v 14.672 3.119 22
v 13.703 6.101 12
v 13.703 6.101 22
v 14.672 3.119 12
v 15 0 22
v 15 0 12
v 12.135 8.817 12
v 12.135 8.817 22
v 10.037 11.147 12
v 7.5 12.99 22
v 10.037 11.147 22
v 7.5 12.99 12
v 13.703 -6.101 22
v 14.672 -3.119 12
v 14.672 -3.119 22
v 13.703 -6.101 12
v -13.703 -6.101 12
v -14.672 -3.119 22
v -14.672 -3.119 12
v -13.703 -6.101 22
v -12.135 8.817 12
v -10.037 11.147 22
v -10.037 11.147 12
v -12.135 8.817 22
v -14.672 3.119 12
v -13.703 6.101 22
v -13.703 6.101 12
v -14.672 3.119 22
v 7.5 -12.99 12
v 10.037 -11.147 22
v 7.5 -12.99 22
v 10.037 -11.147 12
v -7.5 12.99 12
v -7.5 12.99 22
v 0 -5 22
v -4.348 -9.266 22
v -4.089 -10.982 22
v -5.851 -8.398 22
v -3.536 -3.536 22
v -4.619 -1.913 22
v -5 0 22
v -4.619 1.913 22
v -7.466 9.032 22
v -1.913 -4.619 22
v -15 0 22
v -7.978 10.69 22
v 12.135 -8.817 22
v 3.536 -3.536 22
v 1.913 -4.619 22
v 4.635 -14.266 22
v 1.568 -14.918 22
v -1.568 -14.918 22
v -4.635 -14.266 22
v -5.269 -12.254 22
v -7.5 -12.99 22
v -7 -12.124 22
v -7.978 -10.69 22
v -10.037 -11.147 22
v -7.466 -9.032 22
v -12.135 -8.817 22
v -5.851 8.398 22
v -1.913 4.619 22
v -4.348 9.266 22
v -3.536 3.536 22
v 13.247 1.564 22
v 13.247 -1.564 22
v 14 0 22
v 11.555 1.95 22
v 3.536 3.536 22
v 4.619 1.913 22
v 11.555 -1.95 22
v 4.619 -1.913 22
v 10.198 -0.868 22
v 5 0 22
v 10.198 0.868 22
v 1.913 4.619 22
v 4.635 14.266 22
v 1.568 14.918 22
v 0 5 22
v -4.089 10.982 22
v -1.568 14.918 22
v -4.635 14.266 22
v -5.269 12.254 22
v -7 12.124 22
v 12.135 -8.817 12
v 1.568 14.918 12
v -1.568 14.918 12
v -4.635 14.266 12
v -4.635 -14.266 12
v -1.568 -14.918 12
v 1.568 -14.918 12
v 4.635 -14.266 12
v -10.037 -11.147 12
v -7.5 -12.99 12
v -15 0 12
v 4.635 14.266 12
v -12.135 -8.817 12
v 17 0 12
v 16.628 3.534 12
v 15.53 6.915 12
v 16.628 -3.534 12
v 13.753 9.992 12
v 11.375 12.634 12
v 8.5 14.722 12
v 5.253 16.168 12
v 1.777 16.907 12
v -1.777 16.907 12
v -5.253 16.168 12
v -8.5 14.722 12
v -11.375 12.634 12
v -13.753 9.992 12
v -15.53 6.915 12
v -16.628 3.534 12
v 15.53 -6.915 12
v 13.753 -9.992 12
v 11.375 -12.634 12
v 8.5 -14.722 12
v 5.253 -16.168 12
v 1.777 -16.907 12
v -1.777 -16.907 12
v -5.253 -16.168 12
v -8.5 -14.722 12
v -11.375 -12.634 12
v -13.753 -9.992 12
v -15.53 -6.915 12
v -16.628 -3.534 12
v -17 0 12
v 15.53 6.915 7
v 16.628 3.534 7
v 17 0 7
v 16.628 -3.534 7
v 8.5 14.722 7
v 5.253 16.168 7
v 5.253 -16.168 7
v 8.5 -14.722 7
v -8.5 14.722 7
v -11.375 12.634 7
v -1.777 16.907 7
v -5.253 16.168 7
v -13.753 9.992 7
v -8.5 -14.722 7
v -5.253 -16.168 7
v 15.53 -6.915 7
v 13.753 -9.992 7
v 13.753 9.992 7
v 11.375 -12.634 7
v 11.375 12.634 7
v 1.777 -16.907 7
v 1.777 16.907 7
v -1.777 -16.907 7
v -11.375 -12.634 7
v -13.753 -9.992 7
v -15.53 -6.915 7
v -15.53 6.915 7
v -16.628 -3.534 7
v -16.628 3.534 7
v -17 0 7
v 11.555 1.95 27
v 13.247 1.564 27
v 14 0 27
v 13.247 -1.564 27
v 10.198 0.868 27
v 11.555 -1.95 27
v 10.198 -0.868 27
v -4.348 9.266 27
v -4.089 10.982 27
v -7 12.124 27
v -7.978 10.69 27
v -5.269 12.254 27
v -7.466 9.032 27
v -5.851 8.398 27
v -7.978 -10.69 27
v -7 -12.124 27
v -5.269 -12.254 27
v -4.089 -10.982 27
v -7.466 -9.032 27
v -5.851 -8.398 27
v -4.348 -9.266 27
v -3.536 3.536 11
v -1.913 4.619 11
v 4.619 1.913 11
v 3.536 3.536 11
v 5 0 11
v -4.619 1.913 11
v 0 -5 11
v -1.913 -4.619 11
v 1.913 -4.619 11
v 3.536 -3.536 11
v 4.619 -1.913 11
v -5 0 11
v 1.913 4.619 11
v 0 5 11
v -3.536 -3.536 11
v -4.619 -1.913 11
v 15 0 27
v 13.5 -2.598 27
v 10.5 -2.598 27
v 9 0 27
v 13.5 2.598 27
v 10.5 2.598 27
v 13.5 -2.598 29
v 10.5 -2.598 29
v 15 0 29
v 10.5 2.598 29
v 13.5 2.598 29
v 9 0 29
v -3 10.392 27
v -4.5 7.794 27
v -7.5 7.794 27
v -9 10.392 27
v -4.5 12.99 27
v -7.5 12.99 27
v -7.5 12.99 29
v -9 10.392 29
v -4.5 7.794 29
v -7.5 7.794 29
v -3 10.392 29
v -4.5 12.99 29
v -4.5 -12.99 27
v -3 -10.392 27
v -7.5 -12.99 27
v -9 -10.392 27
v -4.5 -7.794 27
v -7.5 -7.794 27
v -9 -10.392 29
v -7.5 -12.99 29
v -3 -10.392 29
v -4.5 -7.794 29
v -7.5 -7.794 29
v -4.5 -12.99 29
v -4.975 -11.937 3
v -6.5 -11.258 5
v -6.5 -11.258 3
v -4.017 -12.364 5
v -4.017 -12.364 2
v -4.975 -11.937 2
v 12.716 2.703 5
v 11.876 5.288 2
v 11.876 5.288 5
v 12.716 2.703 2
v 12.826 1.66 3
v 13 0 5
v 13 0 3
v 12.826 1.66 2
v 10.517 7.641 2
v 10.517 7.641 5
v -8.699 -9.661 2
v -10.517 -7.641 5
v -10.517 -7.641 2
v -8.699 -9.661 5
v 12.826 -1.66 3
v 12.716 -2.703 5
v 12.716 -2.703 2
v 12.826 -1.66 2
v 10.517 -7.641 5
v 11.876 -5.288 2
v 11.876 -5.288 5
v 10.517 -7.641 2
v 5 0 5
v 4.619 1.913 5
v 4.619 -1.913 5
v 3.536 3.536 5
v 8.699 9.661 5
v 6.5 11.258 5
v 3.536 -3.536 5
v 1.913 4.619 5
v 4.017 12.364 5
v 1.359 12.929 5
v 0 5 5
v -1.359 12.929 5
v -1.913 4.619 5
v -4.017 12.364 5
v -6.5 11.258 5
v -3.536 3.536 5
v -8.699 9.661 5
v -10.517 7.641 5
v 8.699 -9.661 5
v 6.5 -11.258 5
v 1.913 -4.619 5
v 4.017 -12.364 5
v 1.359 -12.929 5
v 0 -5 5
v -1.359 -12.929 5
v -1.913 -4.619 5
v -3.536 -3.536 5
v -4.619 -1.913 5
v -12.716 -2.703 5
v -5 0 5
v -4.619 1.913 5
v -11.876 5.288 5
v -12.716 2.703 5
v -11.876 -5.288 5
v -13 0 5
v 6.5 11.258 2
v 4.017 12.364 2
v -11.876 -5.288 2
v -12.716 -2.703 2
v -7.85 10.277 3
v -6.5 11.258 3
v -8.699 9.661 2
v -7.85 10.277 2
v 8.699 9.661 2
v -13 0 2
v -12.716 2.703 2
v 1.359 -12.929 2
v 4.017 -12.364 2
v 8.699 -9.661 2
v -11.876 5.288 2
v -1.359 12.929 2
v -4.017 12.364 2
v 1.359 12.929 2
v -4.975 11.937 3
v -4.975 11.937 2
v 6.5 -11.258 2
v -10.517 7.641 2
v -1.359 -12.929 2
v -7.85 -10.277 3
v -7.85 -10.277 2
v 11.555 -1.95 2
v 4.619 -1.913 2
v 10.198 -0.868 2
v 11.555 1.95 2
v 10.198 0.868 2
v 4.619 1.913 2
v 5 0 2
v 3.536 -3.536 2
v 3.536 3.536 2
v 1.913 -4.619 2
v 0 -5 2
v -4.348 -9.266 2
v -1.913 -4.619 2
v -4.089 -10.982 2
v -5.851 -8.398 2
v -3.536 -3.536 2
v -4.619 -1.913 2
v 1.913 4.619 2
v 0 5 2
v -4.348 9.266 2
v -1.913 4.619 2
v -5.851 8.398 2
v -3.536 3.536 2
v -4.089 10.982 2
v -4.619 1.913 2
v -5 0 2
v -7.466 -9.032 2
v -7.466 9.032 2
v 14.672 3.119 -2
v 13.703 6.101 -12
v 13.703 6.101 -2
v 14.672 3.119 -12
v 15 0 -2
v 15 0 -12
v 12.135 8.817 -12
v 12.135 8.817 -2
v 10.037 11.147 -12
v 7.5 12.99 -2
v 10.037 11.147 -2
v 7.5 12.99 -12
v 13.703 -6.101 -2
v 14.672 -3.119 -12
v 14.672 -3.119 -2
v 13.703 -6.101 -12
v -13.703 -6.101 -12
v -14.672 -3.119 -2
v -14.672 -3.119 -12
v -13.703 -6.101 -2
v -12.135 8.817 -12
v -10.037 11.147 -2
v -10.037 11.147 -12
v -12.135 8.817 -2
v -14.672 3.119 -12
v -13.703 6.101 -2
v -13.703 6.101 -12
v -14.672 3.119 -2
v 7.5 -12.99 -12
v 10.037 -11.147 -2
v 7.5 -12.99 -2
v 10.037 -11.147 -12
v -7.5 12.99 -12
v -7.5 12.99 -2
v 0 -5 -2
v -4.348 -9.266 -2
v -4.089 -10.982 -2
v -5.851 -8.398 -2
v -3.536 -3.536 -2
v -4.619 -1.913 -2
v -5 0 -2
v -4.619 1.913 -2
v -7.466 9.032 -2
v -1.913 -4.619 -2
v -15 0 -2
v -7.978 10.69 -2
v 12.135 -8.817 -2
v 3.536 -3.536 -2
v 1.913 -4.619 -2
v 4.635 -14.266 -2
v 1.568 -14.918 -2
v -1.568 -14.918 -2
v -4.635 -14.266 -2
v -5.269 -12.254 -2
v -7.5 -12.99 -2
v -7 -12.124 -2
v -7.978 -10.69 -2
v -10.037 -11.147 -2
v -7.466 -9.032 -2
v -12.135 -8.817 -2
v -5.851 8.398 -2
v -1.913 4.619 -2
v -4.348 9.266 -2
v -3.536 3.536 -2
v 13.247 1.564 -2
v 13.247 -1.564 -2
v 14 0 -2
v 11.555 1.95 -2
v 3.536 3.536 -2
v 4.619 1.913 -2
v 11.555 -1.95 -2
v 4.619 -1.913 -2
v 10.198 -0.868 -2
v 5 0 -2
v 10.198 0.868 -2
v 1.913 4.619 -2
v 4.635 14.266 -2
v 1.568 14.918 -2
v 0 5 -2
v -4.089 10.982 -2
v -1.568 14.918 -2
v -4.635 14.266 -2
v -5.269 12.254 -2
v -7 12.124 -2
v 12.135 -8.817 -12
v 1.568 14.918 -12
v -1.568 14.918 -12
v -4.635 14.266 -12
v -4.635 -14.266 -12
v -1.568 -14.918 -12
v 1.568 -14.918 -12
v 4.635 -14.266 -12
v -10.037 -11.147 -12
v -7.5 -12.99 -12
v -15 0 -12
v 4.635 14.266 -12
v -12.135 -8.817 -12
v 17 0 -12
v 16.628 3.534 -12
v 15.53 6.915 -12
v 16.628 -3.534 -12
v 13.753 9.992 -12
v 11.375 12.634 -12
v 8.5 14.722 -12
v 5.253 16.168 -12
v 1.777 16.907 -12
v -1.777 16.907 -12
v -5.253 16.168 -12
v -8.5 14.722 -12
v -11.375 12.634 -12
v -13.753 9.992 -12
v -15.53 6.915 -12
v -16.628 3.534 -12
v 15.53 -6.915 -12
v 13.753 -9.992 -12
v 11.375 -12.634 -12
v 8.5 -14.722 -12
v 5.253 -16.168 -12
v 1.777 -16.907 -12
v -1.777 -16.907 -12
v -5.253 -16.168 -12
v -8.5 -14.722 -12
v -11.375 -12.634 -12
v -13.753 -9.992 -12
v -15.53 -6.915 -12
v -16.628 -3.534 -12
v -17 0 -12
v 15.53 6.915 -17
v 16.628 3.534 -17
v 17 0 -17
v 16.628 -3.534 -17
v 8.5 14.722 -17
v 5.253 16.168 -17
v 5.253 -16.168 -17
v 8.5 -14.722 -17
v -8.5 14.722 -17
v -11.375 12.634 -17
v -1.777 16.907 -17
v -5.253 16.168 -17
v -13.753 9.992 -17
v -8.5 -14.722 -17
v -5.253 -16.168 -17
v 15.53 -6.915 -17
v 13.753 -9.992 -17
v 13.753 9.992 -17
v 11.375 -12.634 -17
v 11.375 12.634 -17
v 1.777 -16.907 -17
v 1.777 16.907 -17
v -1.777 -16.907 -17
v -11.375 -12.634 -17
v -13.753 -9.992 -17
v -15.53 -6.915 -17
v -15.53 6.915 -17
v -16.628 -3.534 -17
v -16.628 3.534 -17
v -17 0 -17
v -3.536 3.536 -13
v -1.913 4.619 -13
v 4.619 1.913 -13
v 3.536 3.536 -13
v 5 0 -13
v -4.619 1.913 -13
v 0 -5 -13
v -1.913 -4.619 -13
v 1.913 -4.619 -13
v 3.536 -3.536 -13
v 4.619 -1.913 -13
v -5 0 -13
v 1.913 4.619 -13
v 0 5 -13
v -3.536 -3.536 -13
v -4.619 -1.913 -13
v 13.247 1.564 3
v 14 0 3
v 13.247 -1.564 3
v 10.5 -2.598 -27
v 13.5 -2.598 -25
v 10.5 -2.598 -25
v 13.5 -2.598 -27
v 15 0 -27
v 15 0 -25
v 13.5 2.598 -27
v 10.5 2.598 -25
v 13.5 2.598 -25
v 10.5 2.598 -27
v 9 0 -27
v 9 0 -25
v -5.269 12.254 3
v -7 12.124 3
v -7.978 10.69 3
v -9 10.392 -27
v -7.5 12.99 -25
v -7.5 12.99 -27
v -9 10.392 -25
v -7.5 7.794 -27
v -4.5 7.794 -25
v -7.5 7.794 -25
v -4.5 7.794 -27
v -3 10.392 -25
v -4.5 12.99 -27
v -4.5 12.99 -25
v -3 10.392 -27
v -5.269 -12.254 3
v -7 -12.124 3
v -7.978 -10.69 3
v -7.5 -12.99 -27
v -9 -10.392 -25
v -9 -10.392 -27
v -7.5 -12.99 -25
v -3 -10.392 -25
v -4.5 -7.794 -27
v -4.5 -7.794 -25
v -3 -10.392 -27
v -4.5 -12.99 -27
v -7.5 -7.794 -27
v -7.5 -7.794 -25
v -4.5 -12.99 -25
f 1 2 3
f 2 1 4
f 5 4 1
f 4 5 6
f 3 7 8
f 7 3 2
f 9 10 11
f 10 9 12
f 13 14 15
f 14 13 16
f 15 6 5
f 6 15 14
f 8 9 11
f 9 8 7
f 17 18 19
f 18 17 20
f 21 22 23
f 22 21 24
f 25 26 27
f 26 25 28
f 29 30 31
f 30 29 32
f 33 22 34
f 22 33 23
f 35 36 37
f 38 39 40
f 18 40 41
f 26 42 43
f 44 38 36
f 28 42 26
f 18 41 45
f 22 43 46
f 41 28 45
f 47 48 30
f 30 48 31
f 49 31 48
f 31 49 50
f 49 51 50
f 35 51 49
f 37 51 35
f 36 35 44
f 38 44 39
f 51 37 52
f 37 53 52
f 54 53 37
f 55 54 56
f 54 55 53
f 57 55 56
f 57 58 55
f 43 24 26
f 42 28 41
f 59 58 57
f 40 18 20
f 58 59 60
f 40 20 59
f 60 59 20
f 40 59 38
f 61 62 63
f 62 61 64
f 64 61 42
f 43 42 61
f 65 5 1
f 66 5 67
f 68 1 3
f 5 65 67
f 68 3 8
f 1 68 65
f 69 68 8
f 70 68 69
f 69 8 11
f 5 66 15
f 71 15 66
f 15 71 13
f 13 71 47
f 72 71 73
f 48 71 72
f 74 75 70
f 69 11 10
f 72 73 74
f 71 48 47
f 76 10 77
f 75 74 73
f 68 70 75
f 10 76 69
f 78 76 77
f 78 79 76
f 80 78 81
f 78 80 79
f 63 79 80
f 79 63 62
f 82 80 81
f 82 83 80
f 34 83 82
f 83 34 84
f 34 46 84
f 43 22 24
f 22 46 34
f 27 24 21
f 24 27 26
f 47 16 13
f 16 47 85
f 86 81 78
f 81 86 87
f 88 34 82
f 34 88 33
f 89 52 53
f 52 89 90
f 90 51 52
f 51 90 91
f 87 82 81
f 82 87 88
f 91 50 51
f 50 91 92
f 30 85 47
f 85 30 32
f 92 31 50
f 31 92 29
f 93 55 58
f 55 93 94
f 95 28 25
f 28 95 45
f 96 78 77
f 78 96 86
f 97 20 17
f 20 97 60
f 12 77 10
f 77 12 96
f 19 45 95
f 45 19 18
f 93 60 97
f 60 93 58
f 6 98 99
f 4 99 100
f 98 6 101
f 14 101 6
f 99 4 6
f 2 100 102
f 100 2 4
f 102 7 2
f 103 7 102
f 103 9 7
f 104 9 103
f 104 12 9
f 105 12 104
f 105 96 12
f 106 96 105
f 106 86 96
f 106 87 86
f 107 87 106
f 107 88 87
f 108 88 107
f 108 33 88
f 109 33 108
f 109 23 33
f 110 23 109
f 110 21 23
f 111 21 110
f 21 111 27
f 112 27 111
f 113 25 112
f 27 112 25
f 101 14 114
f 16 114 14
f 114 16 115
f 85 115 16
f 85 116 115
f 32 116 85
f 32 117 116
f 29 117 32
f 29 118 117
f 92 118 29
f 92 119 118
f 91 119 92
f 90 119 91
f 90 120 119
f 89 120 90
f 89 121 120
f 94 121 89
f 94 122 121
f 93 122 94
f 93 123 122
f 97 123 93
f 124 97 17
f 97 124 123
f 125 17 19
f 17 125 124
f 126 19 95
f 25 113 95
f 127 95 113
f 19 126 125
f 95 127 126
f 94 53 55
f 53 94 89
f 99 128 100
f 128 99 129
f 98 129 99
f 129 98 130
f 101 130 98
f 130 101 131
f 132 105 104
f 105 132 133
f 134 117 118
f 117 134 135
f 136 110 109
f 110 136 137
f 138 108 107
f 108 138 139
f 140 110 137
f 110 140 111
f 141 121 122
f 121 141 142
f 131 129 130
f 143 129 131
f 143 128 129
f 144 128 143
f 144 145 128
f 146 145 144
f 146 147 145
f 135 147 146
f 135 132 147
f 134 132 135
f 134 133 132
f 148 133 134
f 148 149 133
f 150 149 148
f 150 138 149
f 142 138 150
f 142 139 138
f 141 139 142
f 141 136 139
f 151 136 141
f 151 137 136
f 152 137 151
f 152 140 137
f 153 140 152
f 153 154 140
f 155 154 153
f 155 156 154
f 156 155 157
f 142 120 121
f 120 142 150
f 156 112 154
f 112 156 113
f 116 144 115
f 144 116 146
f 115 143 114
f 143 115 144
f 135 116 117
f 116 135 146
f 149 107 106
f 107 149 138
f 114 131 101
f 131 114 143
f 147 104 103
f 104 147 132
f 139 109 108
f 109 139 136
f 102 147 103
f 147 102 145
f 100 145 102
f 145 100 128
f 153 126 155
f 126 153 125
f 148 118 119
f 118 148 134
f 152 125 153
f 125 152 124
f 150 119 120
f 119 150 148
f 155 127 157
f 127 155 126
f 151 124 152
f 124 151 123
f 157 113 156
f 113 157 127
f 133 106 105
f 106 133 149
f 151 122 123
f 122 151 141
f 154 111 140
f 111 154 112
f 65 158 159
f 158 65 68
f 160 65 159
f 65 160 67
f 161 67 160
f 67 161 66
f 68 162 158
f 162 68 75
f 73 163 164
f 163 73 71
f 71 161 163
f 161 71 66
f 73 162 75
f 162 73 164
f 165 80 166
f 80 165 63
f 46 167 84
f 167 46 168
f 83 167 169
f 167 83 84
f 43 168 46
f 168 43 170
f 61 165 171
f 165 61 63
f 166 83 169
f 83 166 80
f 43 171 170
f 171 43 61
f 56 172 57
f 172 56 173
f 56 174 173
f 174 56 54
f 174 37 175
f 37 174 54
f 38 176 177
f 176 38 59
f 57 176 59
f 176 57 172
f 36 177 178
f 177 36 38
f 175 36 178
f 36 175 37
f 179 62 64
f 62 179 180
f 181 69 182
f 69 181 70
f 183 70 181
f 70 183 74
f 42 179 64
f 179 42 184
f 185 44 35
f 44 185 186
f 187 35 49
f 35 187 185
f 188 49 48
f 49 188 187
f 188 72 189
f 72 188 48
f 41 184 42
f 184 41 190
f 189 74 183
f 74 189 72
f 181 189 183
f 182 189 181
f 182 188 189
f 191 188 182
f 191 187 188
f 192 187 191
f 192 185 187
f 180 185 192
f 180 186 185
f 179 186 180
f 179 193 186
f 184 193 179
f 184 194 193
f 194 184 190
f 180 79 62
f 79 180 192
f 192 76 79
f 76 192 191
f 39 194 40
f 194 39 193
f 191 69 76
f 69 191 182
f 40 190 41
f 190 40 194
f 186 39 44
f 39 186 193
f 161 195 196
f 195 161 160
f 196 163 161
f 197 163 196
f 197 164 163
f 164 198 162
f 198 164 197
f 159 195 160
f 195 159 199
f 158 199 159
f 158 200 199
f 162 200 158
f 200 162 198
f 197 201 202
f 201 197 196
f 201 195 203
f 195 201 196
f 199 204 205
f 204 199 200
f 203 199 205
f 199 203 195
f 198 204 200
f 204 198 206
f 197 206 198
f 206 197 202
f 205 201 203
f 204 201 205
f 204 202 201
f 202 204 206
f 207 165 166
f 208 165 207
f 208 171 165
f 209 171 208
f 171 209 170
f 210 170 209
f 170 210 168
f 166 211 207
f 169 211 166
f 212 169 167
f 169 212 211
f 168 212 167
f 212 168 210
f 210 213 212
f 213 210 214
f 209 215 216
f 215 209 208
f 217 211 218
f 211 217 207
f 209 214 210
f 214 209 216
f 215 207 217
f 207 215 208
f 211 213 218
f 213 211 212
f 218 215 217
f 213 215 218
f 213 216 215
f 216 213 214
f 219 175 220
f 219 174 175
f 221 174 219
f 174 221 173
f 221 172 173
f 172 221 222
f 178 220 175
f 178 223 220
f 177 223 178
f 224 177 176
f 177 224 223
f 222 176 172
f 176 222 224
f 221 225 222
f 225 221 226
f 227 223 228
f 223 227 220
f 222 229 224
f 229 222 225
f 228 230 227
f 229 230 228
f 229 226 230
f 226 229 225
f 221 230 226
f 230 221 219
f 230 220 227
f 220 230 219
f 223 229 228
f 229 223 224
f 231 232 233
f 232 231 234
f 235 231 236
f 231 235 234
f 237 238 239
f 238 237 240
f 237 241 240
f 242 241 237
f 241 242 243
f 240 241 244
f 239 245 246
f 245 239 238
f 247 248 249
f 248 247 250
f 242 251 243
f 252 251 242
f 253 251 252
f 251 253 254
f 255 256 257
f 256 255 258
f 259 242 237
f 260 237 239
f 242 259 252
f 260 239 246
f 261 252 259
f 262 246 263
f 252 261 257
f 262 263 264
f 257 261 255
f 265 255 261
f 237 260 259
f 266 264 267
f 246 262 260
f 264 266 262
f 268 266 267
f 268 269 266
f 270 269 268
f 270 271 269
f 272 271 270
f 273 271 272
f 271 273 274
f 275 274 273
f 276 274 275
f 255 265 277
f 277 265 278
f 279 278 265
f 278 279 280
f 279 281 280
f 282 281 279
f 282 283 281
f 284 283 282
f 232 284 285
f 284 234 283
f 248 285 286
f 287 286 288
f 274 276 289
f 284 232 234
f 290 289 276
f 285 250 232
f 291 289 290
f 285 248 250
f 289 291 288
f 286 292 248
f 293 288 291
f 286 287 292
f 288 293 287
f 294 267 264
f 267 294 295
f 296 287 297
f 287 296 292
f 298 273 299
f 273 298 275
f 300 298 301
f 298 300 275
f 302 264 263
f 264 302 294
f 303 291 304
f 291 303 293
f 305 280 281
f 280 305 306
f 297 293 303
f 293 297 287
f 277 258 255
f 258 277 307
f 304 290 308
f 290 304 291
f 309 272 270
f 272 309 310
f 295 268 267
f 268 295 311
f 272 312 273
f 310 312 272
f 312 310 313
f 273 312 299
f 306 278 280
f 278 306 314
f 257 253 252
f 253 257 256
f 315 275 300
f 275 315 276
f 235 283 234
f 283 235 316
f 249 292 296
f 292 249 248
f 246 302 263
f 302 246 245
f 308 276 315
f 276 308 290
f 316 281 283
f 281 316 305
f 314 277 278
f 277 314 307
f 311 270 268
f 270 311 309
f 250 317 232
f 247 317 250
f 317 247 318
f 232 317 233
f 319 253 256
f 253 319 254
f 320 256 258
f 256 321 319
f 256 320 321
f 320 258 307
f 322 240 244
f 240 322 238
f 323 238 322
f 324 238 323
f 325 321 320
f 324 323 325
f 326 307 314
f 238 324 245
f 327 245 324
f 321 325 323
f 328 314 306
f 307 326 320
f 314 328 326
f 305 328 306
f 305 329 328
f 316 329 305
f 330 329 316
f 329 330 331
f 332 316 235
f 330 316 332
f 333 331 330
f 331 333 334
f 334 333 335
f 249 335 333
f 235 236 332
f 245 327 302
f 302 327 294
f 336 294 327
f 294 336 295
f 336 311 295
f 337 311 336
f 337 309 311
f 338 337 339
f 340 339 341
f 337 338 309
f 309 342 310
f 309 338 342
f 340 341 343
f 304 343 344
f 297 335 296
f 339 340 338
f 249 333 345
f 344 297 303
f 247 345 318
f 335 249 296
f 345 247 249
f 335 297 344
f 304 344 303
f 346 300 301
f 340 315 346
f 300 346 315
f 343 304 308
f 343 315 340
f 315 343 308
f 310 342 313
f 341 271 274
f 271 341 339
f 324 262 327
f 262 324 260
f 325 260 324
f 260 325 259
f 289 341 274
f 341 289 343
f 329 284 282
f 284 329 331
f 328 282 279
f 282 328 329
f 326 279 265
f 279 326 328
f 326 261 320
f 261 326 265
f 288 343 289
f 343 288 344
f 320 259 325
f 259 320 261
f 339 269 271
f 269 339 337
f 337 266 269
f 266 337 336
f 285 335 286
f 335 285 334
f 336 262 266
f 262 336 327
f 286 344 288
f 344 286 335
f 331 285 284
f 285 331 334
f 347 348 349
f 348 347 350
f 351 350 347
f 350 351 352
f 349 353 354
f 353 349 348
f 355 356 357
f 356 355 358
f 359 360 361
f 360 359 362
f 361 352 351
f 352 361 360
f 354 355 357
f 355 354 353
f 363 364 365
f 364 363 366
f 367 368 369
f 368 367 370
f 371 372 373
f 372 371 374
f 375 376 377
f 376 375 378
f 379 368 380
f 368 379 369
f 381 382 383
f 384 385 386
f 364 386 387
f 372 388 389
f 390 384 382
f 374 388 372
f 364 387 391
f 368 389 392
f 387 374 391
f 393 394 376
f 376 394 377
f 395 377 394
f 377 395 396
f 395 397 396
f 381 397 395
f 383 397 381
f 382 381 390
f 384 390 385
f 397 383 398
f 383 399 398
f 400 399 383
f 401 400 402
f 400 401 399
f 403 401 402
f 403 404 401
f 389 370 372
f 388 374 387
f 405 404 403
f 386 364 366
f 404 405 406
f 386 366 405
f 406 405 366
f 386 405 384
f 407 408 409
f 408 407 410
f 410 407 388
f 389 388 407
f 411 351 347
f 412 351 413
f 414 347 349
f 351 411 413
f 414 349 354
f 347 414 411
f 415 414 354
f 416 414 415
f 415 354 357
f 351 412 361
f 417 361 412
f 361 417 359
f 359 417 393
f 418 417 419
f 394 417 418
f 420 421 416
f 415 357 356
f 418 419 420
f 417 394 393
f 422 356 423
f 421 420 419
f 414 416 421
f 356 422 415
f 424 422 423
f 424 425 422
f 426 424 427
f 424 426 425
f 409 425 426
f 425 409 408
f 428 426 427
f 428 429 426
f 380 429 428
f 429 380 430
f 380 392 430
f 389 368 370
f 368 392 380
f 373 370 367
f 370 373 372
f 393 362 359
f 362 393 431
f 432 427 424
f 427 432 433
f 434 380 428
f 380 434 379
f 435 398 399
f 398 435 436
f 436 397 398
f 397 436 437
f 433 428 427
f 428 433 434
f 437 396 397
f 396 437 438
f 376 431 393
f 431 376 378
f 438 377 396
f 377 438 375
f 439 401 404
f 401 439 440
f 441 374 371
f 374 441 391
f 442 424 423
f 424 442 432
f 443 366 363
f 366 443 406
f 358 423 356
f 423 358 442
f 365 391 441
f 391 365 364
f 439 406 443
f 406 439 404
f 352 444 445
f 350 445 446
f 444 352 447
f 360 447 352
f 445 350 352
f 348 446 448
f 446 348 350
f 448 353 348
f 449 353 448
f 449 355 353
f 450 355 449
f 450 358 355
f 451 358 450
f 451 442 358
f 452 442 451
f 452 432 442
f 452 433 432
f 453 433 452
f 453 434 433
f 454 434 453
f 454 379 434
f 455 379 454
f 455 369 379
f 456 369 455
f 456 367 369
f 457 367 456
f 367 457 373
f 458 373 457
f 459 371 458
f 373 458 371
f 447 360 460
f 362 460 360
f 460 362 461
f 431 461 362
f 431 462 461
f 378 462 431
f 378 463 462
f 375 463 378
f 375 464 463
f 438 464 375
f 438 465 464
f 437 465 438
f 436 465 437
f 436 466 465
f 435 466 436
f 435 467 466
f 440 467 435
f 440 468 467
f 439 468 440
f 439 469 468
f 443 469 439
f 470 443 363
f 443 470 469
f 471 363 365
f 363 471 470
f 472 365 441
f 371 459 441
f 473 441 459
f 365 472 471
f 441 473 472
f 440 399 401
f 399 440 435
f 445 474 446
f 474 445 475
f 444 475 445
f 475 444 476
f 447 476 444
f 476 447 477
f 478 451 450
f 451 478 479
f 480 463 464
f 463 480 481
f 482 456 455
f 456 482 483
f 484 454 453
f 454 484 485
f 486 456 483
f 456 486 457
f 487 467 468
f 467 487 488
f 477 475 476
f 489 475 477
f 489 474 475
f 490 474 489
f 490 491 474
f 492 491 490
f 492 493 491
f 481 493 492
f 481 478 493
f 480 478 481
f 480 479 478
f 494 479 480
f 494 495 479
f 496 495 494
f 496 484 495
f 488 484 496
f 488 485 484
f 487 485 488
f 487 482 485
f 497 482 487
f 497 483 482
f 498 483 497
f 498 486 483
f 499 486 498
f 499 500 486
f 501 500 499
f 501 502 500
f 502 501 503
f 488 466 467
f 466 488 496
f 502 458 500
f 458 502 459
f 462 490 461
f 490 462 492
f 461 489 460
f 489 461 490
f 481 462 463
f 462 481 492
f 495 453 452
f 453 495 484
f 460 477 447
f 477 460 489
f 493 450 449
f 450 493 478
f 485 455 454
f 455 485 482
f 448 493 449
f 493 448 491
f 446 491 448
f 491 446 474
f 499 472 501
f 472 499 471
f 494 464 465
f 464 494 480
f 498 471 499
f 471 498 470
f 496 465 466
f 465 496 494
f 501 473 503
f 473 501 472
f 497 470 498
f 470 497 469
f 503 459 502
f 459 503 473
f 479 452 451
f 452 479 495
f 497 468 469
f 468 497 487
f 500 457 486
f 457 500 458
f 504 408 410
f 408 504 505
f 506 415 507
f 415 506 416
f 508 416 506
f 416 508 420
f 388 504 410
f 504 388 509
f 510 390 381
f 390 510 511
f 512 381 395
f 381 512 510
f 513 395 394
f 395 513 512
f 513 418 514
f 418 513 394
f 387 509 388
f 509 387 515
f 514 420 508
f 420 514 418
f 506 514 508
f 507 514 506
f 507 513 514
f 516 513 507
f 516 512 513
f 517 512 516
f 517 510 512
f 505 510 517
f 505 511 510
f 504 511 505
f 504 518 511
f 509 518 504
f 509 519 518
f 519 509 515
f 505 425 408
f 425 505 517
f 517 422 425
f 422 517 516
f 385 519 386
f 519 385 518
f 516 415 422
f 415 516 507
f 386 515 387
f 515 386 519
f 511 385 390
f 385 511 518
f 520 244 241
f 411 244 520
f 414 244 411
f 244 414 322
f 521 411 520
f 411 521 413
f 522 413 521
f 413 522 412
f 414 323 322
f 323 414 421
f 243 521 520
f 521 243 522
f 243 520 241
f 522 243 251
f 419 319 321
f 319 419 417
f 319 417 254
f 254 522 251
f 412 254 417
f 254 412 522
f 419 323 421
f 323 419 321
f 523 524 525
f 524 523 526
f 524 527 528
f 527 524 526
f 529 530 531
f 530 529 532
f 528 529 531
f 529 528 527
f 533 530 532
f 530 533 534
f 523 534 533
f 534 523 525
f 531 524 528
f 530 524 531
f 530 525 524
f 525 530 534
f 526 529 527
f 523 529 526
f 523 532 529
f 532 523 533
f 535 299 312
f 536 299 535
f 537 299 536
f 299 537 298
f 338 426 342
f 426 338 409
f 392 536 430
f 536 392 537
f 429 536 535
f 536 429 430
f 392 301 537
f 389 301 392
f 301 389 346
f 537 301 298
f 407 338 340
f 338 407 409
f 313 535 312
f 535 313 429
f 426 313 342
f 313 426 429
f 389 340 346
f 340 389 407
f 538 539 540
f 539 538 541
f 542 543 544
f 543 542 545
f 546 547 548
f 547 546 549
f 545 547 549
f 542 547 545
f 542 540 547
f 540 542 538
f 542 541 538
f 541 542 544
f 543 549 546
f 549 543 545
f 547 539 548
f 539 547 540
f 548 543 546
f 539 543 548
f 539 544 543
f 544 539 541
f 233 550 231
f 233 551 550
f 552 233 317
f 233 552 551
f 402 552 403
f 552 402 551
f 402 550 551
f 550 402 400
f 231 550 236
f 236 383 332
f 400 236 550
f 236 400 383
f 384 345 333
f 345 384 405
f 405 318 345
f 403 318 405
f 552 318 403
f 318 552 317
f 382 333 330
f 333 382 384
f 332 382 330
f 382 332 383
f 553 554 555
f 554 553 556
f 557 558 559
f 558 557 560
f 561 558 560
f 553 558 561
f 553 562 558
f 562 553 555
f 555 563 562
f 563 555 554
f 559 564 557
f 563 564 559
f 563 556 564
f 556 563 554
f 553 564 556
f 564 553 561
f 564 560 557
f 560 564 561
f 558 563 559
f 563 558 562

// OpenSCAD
// Parameters
clamp_radius = 15;
clamp_length = 10;
clamp_thickness = 5;
bolt_hole_radius = 2;
shaft_hole_radius = 5;
bolt_radius = 2;
bolt_length = 15;
nut_radius = 3;
nut_thickness = 2;
flexible_element_thickness = 3;
flexible_element_gap = 2;

// Function to create a clamp half
module clamp_half() {
    difference() {
        union() {
            cylinder(h = clamp_length, r = clamp_radius);
            translate([0, 0, -clamp_thickness])
                cylinder(h = clamp_thickness, r = clamp_radius + 2);
        }
        // Shaft hole
        translate([0, 0, -1])
            cylinder(h = clamp_length + 2, r = shaft_hole_radius);
        // Bolt holes
        for (i = [0:120:360]) {
            rotate([0, 0, i])
                translate([clamp_radius - 3, 0, clamp_length / 2])
                    cylinder(h = clamp_length + 2, r = bolt_hole_radius);
        }
    }
}

// Function to create a flexible element
module flexible_element() {
    difference() {
        cylinder(h = flexible_element_thickness, r = clamp_radius - 2);
        translate([0, 0, -1])
            cylinder(h = flexible_element_thickness + 2, r = shaft_hole_radius);
    }
}

// Function to create a bolt
module bolt() {
    cylinder(h = bolt_length, r = bolt_radius);
}

// Function to create a nut
module nut() {
    cylinder(h = nut_thickness, r = nut_radius, $fn = 6);
}

// Assembly
module coupling() {
    // Top clamp halves
    translate([0, 0, clamp_length + flexible_element_gap])
        clamp_half();
    mirror([1, 0, 0])
        translate([0, 0, clamp_length + flexible_element_gap])
            clamp_half();
    
    // Bolts and nuts (top layer)
    for (i = [0:120:360]) {
        rotate([0, 0, i])
            translate([clamp_radius - 3, 0, clamp_length + flexible_element_gap])
                bolt();
        rotate([0, 0, i])
            translate([clamp_radius - 3, 0, clamp_length + flexible_element_gap + bolt_length])
                nut();
    }

    // Flexible element (top)
    translate([0, 0, flexible_element_gap])
        flexible_element();

    // Bottom clamp halves
    translate([0, 0, -clamp_length - flexible_element_gap])
        clamp_half();
    mirror([1, 0, 0])
        translate([0, 0, -clamp_length - flexible_element_gap])
            clamp_half();

    // Bolts and nuts (bottom layer)
    for (i = [0:120:360]) {
        rotate([0, 0, i])
            translate([clamp_radius - 3, 0, -clamp_length - flexible_element_gap])
                bolt();
        rotate([0, 0, i])
            translate([clamp_radius - 3, 0, -clamp_length - flexible_element_gap - bolt_length])
                nut();
    }

    // Flexible element (bottom)
    translate([0, 0, -clamp_length - 2 * flexible_element_gap])
        flexible_element();
}

// Render the coupling
coupling();
